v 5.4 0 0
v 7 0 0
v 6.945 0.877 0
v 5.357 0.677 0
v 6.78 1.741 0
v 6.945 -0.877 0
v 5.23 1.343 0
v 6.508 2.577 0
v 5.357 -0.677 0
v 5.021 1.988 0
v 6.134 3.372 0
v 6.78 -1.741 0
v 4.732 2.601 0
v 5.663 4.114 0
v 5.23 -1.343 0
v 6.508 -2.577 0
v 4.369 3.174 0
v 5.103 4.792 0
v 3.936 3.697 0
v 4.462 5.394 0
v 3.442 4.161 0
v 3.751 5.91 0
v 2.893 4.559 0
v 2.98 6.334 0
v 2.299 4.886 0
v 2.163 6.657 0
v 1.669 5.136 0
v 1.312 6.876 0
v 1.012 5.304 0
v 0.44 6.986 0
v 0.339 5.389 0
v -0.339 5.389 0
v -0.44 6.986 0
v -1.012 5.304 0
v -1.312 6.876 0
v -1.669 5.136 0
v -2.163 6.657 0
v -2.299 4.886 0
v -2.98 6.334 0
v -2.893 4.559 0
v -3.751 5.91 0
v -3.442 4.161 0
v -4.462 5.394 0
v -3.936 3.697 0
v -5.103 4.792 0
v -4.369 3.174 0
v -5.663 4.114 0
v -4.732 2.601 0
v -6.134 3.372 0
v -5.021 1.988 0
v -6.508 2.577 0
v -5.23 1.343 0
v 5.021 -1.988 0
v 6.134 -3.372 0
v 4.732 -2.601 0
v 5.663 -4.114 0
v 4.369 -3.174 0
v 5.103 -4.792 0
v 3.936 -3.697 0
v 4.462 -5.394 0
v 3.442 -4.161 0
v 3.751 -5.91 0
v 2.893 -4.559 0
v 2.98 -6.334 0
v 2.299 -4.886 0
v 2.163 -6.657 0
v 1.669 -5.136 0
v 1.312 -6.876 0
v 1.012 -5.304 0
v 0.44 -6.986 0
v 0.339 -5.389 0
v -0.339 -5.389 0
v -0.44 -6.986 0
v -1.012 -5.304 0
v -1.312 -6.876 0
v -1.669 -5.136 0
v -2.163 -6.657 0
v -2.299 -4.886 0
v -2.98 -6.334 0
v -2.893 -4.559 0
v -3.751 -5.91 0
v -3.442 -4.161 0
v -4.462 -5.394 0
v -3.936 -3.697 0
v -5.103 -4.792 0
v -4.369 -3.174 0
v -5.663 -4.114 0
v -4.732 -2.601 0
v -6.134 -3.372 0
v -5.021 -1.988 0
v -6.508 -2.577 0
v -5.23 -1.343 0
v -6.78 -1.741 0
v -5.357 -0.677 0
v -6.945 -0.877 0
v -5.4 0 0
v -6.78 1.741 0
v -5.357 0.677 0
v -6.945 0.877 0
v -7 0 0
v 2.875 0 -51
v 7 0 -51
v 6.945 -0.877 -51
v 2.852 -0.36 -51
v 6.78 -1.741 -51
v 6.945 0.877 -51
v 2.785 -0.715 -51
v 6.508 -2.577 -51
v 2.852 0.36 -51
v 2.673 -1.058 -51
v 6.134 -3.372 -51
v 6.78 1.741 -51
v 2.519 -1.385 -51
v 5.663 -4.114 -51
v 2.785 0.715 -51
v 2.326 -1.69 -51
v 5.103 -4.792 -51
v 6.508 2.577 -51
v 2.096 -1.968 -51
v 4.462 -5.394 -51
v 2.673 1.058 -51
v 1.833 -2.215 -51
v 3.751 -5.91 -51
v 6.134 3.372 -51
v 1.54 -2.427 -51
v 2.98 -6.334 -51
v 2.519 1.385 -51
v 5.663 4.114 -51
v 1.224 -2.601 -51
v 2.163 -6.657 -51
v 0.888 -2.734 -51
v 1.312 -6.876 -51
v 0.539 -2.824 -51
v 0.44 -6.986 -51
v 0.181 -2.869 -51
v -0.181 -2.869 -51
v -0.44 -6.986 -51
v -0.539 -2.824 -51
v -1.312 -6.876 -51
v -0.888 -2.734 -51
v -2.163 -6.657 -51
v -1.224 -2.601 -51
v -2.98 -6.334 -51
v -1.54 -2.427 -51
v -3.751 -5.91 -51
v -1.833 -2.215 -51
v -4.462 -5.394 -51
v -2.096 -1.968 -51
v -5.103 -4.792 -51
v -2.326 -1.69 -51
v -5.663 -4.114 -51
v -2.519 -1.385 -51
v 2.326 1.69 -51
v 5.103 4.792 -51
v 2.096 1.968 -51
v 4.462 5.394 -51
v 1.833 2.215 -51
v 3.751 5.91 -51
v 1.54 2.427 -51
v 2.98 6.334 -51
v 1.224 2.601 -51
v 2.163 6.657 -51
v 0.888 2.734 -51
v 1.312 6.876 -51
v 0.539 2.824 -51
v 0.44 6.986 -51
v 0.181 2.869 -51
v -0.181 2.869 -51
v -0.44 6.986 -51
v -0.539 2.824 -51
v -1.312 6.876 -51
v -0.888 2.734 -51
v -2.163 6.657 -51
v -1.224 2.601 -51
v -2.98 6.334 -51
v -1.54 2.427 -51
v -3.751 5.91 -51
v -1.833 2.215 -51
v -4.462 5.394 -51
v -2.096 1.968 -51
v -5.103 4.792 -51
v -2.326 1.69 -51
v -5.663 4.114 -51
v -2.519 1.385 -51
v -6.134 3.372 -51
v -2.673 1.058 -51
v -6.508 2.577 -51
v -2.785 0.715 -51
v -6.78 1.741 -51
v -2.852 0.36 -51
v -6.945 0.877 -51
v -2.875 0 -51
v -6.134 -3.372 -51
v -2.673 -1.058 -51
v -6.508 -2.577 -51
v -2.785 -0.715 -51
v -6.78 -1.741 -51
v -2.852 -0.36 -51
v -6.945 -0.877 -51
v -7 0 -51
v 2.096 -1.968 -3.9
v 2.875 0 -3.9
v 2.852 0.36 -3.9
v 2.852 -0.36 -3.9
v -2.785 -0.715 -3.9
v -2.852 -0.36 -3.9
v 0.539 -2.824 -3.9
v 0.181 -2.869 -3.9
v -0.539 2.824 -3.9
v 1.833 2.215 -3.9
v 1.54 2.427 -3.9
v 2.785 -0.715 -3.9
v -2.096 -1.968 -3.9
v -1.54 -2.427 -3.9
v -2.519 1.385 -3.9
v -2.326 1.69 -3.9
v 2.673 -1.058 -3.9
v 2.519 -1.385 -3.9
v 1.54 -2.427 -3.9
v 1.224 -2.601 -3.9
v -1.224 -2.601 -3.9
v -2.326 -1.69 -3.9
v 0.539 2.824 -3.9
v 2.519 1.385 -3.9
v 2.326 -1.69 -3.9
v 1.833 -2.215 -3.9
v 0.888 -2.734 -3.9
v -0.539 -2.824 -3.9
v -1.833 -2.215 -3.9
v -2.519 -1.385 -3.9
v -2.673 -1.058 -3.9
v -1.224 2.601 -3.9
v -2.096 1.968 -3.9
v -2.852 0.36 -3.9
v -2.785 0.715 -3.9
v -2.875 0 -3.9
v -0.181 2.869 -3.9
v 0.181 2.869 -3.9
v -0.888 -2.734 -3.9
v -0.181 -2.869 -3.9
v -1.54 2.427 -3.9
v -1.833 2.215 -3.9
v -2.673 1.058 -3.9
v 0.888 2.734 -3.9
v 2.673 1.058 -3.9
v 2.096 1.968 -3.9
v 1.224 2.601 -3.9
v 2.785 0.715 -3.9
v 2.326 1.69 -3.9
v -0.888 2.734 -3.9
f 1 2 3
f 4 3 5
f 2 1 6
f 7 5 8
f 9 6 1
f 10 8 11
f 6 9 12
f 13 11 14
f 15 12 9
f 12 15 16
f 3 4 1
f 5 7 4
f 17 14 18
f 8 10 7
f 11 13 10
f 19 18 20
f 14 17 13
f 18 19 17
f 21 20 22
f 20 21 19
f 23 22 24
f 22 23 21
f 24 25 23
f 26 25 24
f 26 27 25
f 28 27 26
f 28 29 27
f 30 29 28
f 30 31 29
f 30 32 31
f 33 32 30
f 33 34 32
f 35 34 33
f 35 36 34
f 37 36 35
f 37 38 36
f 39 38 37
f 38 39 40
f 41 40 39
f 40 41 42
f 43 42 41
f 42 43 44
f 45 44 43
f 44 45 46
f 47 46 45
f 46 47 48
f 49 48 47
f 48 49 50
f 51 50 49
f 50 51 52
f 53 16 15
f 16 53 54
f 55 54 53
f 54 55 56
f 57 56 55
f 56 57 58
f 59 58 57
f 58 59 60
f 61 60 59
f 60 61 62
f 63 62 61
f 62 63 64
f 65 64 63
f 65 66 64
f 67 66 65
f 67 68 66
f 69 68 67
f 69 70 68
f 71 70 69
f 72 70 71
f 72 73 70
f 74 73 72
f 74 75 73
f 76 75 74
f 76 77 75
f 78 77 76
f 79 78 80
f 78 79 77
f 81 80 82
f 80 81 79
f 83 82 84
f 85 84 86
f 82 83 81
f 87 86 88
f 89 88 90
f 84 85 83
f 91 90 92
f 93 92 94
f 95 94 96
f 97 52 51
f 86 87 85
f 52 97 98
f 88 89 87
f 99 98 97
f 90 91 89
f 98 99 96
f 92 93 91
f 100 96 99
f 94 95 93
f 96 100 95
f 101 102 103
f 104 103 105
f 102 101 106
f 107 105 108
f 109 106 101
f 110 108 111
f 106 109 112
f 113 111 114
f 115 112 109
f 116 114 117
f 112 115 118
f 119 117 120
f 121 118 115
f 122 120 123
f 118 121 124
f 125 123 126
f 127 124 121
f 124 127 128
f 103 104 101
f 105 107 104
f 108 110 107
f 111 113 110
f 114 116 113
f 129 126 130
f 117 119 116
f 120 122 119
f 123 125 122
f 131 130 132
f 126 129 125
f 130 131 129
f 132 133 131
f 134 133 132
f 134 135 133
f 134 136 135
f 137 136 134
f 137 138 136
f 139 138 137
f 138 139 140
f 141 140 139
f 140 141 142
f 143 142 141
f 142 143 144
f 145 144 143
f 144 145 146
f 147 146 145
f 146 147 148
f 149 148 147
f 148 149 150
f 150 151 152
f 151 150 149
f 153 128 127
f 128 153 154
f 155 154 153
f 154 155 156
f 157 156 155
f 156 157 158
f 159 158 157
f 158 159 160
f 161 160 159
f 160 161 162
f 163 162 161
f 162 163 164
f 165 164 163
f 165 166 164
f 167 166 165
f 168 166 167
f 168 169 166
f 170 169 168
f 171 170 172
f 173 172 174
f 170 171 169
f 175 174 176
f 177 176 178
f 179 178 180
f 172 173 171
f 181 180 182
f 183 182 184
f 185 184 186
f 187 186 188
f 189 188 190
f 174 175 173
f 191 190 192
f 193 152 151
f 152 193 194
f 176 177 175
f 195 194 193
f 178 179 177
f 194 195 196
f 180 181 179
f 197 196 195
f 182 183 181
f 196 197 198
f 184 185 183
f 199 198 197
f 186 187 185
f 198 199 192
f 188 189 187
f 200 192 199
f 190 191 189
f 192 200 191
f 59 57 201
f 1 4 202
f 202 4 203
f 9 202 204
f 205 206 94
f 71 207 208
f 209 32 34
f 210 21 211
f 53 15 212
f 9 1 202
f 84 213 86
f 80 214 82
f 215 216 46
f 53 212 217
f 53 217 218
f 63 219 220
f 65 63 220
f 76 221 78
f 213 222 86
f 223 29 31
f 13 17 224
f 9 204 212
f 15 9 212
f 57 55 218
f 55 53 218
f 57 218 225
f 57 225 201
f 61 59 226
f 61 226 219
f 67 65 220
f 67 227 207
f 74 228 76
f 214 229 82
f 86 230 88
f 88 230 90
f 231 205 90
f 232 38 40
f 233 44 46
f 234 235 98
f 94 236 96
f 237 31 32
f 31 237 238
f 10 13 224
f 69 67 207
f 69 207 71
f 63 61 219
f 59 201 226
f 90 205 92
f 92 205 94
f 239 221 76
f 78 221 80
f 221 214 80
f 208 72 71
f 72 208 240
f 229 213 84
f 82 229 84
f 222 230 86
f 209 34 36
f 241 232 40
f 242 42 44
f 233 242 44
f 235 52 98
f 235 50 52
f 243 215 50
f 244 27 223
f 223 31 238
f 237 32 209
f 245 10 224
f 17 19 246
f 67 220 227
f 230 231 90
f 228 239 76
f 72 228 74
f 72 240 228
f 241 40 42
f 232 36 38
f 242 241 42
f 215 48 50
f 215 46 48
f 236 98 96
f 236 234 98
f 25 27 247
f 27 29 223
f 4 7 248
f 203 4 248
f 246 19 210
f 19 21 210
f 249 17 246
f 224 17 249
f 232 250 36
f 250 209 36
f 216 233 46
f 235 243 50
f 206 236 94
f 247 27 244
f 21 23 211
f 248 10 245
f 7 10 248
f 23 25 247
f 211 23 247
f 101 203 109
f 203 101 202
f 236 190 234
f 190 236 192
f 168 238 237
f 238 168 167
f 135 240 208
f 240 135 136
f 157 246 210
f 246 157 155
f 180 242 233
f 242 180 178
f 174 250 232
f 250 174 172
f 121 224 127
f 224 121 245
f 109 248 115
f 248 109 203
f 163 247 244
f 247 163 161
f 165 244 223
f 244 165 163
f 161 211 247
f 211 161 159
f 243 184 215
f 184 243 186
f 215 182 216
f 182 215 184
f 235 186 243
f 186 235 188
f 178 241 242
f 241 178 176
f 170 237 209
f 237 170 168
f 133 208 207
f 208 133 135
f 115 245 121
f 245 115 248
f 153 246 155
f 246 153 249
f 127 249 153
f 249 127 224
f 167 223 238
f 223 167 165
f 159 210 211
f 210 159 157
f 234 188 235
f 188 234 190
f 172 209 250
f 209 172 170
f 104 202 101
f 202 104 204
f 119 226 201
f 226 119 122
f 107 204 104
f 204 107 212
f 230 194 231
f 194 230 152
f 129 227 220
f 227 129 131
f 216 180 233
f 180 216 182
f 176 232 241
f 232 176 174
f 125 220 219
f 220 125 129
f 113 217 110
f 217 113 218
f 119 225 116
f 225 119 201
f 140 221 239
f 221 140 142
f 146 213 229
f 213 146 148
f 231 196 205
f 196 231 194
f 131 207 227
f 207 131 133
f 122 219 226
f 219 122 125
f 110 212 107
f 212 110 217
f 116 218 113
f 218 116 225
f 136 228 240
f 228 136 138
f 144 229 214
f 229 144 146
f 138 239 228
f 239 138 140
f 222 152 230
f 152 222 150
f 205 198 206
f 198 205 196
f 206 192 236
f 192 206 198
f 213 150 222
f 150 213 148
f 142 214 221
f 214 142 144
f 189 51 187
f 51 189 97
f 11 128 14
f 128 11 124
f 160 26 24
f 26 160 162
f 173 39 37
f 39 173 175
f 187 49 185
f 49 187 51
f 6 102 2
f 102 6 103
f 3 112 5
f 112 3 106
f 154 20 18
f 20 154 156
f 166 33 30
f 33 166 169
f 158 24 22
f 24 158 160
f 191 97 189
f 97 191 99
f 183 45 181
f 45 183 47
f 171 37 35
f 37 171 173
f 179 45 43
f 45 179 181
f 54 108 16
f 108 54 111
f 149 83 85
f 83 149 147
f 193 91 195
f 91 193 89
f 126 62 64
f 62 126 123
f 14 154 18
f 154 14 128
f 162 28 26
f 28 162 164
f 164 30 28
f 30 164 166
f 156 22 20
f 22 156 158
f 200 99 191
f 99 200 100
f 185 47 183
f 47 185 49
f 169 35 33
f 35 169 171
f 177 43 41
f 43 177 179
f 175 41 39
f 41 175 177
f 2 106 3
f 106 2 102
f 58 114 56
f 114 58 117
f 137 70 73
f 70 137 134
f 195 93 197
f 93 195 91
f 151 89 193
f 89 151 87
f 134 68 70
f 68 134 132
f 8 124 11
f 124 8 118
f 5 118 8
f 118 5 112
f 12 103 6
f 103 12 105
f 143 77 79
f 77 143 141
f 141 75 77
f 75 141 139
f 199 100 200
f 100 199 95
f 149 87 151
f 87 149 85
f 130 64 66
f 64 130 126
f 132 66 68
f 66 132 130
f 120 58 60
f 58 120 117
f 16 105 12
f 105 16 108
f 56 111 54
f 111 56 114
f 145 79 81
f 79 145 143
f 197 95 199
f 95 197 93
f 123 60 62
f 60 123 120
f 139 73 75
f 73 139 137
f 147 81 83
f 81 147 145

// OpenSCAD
$fn = 50;


difference() {
	union() {
		translate(v = [0, 0, -51.0000000000]) {
			cylinder(h = 51, r = 7.0000000000);
		}
		cylinder(h = 0, r = 10.0000000000);
	}
	union() {
		translate(v = [0, 0, 0]) {
			rotate(a = [0, 0, 0]) {
				difference() {
					union() {
						#translate(v = [0, 0, -51.0000000000]) {
							cylinder(h = 51, r = 2.6000000000);
						}
						#translate(v = [0, 0, -3.9000000000]) {
							cylinder(h = 3.9000000000, r1 = 2.8750000000, r2 = 5.4000000000);
						}
						#translate(v = [0, 0, -51.0000000000]) {
							cylinder(h = 51, r = 2.8750000000);
						}
						#translate(v = [0, 0, -51.0000000000]) {
							cylinder(h = 51, r = 2.6000000000);
						}
					}
					union();
				}
			}
		}
	}
}
